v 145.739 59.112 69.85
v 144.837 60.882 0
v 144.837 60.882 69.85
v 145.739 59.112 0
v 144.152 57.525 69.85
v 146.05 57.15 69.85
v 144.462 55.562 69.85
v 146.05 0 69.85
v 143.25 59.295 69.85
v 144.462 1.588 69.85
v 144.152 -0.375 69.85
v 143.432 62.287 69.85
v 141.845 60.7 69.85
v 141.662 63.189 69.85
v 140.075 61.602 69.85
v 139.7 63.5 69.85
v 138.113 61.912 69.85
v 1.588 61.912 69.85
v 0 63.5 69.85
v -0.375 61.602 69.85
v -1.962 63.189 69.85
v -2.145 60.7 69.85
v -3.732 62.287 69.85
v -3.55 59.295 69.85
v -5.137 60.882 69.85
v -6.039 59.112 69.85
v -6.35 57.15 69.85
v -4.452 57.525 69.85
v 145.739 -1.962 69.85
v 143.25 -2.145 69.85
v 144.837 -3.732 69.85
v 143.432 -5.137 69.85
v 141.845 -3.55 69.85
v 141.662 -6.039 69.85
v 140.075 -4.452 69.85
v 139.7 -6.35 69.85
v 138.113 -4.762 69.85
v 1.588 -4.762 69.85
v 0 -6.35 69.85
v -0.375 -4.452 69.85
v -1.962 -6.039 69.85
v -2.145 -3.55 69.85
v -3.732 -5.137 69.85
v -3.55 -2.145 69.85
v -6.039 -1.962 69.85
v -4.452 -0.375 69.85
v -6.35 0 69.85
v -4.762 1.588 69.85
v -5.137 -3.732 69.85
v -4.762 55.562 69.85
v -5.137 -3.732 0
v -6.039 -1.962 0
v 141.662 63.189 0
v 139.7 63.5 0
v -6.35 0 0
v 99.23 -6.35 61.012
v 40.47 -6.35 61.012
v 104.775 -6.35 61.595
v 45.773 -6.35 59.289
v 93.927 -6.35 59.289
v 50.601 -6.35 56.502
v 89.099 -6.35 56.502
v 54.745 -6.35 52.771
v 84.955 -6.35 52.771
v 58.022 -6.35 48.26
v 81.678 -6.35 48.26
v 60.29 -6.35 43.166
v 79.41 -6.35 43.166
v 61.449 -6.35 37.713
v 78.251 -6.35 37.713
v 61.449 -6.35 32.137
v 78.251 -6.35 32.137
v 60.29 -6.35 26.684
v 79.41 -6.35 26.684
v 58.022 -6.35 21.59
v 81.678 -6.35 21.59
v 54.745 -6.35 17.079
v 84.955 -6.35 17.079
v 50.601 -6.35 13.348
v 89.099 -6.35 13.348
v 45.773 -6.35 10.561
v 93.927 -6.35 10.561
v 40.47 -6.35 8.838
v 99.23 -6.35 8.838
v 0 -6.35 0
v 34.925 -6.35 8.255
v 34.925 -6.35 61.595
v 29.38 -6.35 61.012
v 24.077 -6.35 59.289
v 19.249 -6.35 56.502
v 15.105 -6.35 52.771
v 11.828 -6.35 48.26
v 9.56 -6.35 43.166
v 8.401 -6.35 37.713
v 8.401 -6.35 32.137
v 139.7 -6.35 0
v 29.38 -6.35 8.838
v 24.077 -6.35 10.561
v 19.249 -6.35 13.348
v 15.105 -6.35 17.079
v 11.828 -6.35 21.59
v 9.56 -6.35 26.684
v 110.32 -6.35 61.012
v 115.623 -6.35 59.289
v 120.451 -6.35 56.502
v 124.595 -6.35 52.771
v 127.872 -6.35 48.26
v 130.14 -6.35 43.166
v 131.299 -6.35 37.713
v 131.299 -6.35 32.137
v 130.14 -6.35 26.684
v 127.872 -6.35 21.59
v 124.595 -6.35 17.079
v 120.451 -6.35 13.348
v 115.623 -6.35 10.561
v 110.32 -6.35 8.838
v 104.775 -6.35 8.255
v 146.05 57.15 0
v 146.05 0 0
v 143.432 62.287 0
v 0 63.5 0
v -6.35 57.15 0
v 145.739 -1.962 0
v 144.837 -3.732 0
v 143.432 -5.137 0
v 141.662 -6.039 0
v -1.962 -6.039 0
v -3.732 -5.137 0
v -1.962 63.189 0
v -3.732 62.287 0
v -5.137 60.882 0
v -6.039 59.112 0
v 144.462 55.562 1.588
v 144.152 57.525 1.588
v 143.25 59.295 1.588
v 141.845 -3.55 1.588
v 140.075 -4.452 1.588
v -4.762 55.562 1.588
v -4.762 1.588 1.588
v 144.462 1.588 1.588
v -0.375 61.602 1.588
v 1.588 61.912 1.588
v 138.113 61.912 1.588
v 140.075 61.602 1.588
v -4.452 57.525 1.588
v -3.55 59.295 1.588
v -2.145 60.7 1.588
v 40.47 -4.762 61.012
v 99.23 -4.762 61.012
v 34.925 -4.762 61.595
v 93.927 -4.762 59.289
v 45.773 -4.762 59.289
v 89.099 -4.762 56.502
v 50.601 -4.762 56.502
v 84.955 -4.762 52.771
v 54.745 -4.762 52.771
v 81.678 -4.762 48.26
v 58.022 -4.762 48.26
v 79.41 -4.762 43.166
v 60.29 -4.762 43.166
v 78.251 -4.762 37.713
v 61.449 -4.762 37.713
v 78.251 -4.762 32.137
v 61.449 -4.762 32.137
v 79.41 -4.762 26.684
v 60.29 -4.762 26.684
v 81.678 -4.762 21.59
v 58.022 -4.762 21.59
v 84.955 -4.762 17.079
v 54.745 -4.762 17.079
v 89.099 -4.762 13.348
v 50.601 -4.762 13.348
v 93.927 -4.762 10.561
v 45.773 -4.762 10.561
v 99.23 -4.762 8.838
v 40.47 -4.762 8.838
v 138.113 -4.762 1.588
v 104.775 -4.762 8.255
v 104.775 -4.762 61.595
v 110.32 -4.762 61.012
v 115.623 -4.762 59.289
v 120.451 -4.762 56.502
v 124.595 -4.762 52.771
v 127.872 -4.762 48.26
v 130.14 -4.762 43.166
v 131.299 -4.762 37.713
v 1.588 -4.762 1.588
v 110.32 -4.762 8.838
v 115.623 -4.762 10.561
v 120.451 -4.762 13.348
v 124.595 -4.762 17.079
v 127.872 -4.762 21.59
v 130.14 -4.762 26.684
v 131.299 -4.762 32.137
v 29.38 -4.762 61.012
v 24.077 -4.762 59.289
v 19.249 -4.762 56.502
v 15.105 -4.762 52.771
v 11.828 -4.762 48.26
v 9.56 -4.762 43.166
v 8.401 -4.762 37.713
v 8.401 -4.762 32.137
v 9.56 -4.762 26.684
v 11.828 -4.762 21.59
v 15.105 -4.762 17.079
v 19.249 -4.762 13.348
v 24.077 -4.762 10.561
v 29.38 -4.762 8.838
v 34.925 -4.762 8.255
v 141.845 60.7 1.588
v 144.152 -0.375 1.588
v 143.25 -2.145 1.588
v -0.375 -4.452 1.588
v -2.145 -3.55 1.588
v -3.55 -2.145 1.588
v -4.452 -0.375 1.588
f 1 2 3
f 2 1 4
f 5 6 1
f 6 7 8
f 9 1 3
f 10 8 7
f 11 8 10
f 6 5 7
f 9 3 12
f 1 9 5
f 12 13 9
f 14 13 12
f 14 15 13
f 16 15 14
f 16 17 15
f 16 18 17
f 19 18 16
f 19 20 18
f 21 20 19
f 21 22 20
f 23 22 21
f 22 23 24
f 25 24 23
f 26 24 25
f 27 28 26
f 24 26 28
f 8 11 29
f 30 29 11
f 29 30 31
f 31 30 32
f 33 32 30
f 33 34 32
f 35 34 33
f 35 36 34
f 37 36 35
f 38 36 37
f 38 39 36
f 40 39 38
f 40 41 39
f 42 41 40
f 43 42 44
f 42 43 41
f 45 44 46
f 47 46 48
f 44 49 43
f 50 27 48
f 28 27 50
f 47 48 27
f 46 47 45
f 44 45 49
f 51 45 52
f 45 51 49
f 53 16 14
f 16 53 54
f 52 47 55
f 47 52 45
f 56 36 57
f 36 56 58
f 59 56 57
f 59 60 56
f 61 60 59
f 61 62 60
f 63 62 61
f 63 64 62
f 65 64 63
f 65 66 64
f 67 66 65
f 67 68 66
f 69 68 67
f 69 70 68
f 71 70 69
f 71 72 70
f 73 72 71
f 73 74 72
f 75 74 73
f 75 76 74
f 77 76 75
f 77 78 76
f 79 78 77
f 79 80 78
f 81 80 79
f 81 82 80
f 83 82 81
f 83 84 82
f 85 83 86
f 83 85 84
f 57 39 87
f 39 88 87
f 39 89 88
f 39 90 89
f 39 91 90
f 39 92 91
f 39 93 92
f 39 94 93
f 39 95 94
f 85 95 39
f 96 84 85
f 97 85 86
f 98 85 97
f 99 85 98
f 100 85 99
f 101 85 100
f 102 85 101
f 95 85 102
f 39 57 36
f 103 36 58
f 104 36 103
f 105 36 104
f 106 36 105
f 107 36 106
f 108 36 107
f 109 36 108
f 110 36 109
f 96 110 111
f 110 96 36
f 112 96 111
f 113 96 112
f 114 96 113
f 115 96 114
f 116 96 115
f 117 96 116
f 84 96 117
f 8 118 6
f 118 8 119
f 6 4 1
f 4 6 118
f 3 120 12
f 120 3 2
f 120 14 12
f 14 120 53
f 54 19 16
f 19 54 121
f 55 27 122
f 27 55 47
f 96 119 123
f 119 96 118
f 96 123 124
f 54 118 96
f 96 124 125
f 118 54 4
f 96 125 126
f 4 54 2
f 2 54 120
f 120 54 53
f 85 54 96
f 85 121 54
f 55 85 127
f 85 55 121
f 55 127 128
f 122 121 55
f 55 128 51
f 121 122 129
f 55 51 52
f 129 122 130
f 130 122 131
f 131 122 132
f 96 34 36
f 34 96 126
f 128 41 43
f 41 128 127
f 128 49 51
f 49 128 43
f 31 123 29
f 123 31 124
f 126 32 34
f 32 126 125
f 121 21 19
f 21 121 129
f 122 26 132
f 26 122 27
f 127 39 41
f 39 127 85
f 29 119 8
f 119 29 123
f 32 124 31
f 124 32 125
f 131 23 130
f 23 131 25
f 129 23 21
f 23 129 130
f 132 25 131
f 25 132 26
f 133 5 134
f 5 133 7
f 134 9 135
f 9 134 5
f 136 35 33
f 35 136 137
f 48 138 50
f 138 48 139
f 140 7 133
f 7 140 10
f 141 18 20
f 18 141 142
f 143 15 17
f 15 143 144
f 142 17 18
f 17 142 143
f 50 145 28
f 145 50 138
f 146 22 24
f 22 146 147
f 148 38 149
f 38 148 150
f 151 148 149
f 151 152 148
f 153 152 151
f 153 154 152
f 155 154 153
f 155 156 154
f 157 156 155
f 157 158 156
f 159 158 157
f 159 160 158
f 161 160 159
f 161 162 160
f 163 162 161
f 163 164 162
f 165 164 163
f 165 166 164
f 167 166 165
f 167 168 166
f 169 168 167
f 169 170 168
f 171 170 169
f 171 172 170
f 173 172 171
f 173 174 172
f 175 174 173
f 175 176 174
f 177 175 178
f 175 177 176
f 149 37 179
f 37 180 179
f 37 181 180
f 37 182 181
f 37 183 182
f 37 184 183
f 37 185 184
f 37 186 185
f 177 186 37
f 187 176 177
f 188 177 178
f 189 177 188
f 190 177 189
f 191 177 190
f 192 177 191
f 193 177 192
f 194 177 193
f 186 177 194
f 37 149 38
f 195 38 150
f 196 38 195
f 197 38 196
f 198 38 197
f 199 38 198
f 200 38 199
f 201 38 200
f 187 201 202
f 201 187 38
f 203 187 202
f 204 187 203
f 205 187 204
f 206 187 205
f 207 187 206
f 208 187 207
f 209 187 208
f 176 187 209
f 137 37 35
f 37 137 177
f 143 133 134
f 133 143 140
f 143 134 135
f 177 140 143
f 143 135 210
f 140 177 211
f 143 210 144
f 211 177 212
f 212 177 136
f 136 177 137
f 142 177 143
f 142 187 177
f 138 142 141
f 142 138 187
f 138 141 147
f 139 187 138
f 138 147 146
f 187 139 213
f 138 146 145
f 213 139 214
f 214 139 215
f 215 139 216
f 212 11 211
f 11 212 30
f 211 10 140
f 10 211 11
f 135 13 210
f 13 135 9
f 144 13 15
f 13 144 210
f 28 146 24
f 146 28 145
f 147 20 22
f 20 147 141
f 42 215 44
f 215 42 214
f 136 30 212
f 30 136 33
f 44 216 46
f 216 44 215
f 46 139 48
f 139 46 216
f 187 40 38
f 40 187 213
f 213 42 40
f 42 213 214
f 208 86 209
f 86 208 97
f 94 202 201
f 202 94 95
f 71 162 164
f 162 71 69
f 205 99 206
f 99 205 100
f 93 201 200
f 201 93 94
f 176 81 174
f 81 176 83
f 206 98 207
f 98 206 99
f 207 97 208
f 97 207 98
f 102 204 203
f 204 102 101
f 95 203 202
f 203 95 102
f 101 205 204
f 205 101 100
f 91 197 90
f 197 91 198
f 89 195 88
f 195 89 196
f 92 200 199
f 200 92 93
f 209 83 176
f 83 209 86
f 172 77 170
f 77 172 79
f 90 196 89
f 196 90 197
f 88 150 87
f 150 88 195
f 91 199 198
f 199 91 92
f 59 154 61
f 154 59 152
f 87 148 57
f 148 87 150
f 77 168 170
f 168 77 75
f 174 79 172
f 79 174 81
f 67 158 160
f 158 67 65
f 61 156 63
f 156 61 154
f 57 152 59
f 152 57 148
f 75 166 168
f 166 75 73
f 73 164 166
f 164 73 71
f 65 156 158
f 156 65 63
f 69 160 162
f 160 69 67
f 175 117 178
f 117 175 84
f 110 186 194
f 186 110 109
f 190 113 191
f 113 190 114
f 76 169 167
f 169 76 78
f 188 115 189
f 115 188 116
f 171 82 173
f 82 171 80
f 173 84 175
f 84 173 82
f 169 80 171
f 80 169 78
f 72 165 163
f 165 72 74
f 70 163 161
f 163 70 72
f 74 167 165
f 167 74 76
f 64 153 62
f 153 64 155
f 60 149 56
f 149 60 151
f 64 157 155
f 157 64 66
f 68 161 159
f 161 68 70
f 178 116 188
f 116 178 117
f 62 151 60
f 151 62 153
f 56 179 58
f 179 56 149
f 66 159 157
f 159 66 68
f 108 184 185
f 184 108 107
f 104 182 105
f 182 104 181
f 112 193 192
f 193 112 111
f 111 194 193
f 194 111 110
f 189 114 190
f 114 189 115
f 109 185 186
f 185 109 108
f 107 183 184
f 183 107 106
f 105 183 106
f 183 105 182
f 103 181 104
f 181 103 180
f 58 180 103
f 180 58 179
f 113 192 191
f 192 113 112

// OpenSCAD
function in2mm (v) = v * 25.4;
function mm2in (v) = v / 25.4;

width = in2mm (5.5);
height = in2mm (2.75);
depth = in2mm (2.25);
wall = in2mm (0.0625);
radius = in2mm (0.250);
gauge_dia = in2mm (2.10);

box_outer = 
  [[0, 0, 0], 
   [width, 0, 0], 
   [0, depth, 0,], 
   [width, depth, 0]];
box_inner = 
  [[0, 0, 0], 
   [width - (wall * 2), 0, 0], 
   [0, depth - (wall * 2), 0,], 
   [width - (wall * 2), depth - (wall * 2), 0]];

module rounded_box (points, radius, height) {
  hull () {
    for (p = points) {
      translate (p) 
        cylinder (r=radius, h=height);
    }
  }
}

module box () {
  difference () {
    translate ([0, 0, 0])
      rounded_box (box_outer, radius, height);
    translate ([wall, wall, wall])
      rounded_box (box_inner, radius, height);
  }
}

module gauge_hole (x) {
  translate ([x, -(radius + 0.01), height / 2])
    rotate ([0, 90, 90])
      cylinder (d=gauge_dia, h=radius * 2);
}

difference () {
  box ();
  gauge_hole (in2mm (1.375));
  gauge_hole (width - in2mm (1.375));
}
